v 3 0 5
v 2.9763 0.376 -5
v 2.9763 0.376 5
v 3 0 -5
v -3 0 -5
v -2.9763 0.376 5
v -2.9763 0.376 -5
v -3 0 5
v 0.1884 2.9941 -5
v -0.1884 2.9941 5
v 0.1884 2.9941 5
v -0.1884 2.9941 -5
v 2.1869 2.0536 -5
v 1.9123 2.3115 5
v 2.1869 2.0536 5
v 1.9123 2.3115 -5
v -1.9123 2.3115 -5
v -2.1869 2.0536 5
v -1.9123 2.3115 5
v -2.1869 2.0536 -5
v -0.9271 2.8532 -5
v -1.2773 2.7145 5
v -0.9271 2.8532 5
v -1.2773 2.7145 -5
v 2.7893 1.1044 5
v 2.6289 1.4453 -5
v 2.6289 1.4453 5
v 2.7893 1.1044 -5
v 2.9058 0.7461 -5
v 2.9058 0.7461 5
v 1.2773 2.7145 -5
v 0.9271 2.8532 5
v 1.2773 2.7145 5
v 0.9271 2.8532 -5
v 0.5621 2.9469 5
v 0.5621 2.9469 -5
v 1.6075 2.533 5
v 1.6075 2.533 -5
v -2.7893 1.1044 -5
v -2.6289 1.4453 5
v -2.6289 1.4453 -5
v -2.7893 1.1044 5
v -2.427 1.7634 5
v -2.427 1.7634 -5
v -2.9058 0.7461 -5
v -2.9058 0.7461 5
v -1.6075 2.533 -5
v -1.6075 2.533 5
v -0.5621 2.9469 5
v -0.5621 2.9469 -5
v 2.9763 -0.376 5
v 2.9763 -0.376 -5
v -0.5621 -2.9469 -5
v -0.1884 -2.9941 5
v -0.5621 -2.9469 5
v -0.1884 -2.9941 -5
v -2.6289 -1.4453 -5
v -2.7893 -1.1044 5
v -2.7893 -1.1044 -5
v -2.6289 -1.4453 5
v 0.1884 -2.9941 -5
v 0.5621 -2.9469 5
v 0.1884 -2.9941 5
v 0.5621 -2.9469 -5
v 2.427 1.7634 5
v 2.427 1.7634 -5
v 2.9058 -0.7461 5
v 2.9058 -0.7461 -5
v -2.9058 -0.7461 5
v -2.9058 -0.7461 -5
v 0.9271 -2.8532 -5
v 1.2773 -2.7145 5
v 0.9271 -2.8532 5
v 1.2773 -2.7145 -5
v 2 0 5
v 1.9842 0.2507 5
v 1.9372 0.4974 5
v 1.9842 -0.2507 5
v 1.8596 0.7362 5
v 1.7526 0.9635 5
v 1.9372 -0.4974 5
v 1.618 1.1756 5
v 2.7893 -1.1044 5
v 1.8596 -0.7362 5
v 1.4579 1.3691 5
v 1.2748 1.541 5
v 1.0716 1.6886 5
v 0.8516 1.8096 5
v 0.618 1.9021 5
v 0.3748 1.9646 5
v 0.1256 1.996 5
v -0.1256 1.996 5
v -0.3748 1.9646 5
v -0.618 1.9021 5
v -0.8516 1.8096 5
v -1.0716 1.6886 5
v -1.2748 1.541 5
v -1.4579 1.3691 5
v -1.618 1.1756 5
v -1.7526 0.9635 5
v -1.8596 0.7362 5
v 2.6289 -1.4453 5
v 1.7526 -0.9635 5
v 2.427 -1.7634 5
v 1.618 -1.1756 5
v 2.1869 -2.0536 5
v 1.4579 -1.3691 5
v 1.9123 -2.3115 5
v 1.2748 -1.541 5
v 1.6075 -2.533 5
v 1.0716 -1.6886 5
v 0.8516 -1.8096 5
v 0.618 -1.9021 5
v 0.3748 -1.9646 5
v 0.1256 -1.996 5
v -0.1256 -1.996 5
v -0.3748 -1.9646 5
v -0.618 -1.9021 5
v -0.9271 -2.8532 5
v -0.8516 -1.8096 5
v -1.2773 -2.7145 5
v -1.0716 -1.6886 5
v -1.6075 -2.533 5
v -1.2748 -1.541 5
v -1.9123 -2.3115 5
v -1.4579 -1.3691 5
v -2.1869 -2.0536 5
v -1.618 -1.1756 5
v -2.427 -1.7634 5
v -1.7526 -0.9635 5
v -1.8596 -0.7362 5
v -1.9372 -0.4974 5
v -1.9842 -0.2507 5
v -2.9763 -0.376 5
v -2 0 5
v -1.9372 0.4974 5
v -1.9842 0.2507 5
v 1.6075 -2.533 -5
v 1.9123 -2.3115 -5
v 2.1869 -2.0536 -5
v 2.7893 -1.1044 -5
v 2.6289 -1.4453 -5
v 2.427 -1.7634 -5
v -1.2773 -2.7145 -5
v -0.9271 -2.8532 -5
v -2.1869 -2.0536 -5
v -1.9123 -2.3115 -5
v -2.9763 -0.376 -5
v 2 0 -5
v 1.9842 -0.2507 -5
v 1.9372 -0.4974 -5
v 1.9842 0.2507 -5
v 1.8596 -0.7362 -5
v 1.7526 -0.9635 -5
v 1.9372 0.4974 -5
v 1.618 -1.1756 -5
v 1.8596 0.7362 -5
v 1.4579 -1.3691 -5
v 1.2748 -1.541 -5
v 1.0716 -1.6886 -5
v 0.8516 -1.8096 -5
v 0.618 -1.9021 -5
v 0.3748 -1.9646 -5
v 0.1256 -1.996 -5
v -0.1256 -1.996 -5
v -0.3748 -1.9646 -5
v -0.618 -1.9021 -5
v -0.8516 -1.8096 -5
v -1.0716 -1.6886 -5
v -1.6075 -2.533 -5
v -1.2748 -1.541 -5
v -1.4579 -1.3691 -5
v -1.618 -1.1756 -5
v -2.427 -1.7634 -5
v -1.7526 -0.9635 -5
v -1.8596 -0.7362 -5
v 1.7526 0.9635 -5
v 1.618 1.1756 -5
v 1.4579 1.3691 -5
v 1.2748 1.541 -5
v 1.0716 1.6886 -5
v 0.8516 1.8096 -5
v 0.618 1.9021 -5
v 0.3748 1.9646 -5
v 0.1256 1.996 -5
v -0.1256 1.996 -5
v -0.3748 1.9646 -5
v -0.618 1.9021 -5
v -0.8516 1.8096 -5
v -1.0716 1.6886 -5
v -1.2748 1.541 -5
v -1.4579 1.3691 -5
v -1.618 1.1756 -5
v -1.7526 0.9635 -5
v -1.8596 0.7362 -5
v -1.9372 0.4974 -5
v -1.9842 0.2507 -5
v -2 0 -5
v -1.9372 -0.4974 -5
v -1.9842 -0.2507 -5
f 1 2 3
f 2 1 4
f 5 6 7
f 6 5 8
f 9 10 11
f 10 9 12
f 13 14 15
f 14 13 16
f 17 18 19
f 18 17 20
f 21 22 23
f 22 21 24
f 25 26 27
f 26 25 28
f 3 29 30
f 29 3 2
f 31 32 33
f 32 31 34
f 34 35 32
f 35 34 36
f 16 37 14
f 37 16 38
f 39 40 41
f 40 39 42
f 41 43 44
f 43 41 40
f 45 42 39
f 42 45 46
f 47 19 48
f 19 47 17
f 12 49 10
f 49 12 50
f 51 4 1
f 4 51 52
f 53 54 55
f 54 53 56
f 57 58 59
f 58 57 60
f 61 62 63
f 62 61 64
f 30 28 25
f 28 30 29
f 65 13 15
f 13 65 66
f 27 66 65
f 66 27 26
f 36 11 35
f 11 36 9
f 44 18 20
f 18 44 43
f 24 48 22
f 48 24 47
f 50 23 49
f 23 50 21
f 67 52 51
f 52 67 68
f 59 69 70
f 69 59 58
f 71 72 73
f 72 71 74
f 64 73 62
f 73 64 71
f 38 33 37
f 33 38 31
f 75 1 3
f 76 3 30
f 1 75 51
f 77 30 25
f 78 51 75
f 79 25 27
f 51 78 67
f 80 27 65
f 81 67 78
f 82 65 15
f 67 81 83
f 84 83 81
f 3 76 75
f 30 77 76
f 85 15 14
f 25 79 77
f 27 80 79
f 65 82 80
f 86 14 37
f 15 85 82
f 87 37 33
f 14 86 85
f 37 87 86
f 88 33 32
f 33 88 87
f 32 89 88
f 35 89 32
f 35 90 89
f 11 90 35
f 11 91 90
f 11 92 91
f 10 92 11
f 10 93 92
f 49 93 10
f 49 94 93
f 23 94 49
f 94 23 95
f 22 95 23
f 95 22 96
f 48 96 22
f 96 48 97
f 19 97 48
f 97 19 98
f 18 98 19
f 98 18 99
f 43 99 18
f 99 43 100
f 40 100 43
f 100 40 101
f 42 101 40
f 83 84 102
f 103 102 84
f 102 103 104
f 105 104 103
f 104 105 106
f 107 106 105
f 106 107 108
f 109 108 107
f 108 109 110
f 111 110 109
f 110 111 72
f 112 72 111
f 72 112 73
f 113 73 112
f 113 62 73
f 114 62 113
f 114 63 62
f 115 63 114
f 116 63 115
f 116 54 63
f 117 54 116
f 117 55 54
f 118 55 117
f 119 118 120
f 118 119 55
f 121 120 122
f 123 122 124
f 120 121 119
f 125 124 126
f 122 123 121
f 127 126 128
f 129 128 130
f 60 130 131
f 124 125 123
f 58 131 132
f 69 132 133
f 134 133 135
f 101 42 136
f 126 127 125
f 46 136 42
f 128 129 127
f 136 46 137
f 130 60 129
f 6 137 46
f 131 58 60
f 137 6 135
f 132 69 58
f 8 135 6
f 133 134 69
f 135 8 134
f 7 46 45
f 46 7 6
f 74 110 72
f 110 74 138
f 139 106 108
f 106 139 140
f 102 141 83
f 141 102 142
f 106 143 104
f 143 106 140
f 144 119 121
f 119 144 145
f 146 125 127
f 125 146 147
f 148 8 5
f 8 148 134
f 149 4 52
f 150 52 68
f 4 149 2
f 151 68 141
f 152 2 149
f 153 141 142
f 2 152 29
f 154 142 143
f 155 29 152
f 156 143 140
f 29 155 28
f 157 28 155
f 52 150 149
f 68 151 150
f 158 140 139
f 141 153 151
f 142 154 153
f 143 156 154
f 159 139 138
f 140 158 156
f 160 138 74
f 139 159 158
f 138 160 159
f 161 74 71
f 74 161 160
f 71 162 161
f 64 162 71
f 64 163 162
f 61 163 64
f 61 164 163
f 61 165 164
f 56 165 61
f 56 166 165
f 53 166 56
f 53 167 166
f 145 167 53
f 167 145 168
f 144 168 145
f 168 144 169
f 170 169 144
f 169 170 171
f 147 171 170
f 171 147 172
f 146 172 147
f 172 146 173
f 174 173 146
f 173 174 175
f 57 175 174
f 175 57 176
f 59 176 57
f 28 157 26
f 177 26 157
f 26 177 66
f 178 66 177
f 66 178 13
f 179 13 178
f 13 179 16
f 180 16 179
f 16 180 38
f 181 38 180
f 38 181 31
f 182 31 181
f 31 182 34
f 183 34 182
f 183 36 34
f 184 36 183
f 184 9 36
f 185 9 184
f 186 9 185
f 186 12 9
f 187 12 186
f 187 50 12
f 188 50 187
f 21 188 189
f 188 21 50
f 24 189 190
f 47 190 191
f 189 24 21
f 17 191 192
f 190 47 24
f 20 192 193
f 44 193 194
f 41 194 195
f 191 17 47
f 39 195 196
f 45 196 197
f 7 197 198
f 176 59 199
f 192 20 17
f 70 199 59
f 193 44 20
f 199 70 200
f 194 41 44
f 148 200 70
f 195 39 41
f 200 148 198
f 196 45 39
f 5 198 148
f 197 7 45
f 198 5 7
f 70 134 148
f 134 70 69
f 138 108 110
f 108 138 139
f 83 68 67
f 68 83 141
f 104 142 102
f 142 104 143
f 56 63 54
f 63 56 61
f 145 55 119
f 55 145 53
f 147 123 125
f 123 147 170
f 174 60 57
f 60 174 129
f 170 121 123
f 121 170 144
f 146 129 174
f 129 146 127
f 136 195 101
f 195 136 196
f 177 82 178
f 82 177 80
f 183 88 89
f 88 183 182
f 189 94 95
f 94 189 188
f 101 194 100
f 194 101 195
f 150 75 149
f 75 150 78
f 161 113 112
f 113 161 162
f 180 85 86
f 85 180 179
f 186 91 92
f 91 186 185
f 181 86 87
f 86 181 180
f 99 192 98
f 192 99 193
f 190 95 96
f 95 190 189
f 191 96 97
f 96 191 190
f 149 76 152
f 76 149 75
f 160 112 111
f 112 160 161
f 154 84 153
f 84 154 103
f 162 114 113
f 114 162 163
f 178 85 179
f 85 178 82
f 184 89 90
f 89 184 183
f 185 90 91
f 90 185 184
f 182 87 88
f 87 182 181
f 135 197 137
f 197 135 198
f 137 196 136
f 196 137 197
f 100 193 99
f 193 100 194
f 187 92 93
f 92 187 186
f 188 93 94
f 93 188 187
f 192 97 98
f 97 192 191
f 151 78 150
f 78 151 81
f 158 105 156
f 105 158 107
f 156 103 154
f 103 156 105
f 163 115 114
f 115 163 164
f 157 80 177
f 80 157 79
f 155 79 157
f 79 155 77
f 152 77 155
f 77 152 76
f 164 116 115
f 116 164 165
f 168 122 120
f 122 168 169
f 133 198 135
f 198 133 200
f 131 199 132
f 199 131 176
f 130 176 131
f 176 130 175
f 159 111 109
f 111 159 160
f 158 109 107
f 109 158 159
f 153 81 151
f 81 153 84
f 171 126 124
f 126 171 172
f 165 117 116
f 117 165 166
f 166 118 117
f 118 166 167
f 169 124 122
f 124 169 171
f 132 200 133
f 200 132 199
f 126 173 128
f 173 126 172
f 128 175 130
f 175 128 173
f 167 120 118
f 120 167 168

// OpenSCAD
$fn = 50;


difference() {
	union() {
		translate(v = [0, 0, -5.0000000000]) {
			cylinder(h = 10, r = 3.0000000000);
		}
	}
	union() {
		translate(v = [0, 0, -100.0000000000]) {
			cylinder(h = 200, r = 2.0000000000);
		}
	}
}
